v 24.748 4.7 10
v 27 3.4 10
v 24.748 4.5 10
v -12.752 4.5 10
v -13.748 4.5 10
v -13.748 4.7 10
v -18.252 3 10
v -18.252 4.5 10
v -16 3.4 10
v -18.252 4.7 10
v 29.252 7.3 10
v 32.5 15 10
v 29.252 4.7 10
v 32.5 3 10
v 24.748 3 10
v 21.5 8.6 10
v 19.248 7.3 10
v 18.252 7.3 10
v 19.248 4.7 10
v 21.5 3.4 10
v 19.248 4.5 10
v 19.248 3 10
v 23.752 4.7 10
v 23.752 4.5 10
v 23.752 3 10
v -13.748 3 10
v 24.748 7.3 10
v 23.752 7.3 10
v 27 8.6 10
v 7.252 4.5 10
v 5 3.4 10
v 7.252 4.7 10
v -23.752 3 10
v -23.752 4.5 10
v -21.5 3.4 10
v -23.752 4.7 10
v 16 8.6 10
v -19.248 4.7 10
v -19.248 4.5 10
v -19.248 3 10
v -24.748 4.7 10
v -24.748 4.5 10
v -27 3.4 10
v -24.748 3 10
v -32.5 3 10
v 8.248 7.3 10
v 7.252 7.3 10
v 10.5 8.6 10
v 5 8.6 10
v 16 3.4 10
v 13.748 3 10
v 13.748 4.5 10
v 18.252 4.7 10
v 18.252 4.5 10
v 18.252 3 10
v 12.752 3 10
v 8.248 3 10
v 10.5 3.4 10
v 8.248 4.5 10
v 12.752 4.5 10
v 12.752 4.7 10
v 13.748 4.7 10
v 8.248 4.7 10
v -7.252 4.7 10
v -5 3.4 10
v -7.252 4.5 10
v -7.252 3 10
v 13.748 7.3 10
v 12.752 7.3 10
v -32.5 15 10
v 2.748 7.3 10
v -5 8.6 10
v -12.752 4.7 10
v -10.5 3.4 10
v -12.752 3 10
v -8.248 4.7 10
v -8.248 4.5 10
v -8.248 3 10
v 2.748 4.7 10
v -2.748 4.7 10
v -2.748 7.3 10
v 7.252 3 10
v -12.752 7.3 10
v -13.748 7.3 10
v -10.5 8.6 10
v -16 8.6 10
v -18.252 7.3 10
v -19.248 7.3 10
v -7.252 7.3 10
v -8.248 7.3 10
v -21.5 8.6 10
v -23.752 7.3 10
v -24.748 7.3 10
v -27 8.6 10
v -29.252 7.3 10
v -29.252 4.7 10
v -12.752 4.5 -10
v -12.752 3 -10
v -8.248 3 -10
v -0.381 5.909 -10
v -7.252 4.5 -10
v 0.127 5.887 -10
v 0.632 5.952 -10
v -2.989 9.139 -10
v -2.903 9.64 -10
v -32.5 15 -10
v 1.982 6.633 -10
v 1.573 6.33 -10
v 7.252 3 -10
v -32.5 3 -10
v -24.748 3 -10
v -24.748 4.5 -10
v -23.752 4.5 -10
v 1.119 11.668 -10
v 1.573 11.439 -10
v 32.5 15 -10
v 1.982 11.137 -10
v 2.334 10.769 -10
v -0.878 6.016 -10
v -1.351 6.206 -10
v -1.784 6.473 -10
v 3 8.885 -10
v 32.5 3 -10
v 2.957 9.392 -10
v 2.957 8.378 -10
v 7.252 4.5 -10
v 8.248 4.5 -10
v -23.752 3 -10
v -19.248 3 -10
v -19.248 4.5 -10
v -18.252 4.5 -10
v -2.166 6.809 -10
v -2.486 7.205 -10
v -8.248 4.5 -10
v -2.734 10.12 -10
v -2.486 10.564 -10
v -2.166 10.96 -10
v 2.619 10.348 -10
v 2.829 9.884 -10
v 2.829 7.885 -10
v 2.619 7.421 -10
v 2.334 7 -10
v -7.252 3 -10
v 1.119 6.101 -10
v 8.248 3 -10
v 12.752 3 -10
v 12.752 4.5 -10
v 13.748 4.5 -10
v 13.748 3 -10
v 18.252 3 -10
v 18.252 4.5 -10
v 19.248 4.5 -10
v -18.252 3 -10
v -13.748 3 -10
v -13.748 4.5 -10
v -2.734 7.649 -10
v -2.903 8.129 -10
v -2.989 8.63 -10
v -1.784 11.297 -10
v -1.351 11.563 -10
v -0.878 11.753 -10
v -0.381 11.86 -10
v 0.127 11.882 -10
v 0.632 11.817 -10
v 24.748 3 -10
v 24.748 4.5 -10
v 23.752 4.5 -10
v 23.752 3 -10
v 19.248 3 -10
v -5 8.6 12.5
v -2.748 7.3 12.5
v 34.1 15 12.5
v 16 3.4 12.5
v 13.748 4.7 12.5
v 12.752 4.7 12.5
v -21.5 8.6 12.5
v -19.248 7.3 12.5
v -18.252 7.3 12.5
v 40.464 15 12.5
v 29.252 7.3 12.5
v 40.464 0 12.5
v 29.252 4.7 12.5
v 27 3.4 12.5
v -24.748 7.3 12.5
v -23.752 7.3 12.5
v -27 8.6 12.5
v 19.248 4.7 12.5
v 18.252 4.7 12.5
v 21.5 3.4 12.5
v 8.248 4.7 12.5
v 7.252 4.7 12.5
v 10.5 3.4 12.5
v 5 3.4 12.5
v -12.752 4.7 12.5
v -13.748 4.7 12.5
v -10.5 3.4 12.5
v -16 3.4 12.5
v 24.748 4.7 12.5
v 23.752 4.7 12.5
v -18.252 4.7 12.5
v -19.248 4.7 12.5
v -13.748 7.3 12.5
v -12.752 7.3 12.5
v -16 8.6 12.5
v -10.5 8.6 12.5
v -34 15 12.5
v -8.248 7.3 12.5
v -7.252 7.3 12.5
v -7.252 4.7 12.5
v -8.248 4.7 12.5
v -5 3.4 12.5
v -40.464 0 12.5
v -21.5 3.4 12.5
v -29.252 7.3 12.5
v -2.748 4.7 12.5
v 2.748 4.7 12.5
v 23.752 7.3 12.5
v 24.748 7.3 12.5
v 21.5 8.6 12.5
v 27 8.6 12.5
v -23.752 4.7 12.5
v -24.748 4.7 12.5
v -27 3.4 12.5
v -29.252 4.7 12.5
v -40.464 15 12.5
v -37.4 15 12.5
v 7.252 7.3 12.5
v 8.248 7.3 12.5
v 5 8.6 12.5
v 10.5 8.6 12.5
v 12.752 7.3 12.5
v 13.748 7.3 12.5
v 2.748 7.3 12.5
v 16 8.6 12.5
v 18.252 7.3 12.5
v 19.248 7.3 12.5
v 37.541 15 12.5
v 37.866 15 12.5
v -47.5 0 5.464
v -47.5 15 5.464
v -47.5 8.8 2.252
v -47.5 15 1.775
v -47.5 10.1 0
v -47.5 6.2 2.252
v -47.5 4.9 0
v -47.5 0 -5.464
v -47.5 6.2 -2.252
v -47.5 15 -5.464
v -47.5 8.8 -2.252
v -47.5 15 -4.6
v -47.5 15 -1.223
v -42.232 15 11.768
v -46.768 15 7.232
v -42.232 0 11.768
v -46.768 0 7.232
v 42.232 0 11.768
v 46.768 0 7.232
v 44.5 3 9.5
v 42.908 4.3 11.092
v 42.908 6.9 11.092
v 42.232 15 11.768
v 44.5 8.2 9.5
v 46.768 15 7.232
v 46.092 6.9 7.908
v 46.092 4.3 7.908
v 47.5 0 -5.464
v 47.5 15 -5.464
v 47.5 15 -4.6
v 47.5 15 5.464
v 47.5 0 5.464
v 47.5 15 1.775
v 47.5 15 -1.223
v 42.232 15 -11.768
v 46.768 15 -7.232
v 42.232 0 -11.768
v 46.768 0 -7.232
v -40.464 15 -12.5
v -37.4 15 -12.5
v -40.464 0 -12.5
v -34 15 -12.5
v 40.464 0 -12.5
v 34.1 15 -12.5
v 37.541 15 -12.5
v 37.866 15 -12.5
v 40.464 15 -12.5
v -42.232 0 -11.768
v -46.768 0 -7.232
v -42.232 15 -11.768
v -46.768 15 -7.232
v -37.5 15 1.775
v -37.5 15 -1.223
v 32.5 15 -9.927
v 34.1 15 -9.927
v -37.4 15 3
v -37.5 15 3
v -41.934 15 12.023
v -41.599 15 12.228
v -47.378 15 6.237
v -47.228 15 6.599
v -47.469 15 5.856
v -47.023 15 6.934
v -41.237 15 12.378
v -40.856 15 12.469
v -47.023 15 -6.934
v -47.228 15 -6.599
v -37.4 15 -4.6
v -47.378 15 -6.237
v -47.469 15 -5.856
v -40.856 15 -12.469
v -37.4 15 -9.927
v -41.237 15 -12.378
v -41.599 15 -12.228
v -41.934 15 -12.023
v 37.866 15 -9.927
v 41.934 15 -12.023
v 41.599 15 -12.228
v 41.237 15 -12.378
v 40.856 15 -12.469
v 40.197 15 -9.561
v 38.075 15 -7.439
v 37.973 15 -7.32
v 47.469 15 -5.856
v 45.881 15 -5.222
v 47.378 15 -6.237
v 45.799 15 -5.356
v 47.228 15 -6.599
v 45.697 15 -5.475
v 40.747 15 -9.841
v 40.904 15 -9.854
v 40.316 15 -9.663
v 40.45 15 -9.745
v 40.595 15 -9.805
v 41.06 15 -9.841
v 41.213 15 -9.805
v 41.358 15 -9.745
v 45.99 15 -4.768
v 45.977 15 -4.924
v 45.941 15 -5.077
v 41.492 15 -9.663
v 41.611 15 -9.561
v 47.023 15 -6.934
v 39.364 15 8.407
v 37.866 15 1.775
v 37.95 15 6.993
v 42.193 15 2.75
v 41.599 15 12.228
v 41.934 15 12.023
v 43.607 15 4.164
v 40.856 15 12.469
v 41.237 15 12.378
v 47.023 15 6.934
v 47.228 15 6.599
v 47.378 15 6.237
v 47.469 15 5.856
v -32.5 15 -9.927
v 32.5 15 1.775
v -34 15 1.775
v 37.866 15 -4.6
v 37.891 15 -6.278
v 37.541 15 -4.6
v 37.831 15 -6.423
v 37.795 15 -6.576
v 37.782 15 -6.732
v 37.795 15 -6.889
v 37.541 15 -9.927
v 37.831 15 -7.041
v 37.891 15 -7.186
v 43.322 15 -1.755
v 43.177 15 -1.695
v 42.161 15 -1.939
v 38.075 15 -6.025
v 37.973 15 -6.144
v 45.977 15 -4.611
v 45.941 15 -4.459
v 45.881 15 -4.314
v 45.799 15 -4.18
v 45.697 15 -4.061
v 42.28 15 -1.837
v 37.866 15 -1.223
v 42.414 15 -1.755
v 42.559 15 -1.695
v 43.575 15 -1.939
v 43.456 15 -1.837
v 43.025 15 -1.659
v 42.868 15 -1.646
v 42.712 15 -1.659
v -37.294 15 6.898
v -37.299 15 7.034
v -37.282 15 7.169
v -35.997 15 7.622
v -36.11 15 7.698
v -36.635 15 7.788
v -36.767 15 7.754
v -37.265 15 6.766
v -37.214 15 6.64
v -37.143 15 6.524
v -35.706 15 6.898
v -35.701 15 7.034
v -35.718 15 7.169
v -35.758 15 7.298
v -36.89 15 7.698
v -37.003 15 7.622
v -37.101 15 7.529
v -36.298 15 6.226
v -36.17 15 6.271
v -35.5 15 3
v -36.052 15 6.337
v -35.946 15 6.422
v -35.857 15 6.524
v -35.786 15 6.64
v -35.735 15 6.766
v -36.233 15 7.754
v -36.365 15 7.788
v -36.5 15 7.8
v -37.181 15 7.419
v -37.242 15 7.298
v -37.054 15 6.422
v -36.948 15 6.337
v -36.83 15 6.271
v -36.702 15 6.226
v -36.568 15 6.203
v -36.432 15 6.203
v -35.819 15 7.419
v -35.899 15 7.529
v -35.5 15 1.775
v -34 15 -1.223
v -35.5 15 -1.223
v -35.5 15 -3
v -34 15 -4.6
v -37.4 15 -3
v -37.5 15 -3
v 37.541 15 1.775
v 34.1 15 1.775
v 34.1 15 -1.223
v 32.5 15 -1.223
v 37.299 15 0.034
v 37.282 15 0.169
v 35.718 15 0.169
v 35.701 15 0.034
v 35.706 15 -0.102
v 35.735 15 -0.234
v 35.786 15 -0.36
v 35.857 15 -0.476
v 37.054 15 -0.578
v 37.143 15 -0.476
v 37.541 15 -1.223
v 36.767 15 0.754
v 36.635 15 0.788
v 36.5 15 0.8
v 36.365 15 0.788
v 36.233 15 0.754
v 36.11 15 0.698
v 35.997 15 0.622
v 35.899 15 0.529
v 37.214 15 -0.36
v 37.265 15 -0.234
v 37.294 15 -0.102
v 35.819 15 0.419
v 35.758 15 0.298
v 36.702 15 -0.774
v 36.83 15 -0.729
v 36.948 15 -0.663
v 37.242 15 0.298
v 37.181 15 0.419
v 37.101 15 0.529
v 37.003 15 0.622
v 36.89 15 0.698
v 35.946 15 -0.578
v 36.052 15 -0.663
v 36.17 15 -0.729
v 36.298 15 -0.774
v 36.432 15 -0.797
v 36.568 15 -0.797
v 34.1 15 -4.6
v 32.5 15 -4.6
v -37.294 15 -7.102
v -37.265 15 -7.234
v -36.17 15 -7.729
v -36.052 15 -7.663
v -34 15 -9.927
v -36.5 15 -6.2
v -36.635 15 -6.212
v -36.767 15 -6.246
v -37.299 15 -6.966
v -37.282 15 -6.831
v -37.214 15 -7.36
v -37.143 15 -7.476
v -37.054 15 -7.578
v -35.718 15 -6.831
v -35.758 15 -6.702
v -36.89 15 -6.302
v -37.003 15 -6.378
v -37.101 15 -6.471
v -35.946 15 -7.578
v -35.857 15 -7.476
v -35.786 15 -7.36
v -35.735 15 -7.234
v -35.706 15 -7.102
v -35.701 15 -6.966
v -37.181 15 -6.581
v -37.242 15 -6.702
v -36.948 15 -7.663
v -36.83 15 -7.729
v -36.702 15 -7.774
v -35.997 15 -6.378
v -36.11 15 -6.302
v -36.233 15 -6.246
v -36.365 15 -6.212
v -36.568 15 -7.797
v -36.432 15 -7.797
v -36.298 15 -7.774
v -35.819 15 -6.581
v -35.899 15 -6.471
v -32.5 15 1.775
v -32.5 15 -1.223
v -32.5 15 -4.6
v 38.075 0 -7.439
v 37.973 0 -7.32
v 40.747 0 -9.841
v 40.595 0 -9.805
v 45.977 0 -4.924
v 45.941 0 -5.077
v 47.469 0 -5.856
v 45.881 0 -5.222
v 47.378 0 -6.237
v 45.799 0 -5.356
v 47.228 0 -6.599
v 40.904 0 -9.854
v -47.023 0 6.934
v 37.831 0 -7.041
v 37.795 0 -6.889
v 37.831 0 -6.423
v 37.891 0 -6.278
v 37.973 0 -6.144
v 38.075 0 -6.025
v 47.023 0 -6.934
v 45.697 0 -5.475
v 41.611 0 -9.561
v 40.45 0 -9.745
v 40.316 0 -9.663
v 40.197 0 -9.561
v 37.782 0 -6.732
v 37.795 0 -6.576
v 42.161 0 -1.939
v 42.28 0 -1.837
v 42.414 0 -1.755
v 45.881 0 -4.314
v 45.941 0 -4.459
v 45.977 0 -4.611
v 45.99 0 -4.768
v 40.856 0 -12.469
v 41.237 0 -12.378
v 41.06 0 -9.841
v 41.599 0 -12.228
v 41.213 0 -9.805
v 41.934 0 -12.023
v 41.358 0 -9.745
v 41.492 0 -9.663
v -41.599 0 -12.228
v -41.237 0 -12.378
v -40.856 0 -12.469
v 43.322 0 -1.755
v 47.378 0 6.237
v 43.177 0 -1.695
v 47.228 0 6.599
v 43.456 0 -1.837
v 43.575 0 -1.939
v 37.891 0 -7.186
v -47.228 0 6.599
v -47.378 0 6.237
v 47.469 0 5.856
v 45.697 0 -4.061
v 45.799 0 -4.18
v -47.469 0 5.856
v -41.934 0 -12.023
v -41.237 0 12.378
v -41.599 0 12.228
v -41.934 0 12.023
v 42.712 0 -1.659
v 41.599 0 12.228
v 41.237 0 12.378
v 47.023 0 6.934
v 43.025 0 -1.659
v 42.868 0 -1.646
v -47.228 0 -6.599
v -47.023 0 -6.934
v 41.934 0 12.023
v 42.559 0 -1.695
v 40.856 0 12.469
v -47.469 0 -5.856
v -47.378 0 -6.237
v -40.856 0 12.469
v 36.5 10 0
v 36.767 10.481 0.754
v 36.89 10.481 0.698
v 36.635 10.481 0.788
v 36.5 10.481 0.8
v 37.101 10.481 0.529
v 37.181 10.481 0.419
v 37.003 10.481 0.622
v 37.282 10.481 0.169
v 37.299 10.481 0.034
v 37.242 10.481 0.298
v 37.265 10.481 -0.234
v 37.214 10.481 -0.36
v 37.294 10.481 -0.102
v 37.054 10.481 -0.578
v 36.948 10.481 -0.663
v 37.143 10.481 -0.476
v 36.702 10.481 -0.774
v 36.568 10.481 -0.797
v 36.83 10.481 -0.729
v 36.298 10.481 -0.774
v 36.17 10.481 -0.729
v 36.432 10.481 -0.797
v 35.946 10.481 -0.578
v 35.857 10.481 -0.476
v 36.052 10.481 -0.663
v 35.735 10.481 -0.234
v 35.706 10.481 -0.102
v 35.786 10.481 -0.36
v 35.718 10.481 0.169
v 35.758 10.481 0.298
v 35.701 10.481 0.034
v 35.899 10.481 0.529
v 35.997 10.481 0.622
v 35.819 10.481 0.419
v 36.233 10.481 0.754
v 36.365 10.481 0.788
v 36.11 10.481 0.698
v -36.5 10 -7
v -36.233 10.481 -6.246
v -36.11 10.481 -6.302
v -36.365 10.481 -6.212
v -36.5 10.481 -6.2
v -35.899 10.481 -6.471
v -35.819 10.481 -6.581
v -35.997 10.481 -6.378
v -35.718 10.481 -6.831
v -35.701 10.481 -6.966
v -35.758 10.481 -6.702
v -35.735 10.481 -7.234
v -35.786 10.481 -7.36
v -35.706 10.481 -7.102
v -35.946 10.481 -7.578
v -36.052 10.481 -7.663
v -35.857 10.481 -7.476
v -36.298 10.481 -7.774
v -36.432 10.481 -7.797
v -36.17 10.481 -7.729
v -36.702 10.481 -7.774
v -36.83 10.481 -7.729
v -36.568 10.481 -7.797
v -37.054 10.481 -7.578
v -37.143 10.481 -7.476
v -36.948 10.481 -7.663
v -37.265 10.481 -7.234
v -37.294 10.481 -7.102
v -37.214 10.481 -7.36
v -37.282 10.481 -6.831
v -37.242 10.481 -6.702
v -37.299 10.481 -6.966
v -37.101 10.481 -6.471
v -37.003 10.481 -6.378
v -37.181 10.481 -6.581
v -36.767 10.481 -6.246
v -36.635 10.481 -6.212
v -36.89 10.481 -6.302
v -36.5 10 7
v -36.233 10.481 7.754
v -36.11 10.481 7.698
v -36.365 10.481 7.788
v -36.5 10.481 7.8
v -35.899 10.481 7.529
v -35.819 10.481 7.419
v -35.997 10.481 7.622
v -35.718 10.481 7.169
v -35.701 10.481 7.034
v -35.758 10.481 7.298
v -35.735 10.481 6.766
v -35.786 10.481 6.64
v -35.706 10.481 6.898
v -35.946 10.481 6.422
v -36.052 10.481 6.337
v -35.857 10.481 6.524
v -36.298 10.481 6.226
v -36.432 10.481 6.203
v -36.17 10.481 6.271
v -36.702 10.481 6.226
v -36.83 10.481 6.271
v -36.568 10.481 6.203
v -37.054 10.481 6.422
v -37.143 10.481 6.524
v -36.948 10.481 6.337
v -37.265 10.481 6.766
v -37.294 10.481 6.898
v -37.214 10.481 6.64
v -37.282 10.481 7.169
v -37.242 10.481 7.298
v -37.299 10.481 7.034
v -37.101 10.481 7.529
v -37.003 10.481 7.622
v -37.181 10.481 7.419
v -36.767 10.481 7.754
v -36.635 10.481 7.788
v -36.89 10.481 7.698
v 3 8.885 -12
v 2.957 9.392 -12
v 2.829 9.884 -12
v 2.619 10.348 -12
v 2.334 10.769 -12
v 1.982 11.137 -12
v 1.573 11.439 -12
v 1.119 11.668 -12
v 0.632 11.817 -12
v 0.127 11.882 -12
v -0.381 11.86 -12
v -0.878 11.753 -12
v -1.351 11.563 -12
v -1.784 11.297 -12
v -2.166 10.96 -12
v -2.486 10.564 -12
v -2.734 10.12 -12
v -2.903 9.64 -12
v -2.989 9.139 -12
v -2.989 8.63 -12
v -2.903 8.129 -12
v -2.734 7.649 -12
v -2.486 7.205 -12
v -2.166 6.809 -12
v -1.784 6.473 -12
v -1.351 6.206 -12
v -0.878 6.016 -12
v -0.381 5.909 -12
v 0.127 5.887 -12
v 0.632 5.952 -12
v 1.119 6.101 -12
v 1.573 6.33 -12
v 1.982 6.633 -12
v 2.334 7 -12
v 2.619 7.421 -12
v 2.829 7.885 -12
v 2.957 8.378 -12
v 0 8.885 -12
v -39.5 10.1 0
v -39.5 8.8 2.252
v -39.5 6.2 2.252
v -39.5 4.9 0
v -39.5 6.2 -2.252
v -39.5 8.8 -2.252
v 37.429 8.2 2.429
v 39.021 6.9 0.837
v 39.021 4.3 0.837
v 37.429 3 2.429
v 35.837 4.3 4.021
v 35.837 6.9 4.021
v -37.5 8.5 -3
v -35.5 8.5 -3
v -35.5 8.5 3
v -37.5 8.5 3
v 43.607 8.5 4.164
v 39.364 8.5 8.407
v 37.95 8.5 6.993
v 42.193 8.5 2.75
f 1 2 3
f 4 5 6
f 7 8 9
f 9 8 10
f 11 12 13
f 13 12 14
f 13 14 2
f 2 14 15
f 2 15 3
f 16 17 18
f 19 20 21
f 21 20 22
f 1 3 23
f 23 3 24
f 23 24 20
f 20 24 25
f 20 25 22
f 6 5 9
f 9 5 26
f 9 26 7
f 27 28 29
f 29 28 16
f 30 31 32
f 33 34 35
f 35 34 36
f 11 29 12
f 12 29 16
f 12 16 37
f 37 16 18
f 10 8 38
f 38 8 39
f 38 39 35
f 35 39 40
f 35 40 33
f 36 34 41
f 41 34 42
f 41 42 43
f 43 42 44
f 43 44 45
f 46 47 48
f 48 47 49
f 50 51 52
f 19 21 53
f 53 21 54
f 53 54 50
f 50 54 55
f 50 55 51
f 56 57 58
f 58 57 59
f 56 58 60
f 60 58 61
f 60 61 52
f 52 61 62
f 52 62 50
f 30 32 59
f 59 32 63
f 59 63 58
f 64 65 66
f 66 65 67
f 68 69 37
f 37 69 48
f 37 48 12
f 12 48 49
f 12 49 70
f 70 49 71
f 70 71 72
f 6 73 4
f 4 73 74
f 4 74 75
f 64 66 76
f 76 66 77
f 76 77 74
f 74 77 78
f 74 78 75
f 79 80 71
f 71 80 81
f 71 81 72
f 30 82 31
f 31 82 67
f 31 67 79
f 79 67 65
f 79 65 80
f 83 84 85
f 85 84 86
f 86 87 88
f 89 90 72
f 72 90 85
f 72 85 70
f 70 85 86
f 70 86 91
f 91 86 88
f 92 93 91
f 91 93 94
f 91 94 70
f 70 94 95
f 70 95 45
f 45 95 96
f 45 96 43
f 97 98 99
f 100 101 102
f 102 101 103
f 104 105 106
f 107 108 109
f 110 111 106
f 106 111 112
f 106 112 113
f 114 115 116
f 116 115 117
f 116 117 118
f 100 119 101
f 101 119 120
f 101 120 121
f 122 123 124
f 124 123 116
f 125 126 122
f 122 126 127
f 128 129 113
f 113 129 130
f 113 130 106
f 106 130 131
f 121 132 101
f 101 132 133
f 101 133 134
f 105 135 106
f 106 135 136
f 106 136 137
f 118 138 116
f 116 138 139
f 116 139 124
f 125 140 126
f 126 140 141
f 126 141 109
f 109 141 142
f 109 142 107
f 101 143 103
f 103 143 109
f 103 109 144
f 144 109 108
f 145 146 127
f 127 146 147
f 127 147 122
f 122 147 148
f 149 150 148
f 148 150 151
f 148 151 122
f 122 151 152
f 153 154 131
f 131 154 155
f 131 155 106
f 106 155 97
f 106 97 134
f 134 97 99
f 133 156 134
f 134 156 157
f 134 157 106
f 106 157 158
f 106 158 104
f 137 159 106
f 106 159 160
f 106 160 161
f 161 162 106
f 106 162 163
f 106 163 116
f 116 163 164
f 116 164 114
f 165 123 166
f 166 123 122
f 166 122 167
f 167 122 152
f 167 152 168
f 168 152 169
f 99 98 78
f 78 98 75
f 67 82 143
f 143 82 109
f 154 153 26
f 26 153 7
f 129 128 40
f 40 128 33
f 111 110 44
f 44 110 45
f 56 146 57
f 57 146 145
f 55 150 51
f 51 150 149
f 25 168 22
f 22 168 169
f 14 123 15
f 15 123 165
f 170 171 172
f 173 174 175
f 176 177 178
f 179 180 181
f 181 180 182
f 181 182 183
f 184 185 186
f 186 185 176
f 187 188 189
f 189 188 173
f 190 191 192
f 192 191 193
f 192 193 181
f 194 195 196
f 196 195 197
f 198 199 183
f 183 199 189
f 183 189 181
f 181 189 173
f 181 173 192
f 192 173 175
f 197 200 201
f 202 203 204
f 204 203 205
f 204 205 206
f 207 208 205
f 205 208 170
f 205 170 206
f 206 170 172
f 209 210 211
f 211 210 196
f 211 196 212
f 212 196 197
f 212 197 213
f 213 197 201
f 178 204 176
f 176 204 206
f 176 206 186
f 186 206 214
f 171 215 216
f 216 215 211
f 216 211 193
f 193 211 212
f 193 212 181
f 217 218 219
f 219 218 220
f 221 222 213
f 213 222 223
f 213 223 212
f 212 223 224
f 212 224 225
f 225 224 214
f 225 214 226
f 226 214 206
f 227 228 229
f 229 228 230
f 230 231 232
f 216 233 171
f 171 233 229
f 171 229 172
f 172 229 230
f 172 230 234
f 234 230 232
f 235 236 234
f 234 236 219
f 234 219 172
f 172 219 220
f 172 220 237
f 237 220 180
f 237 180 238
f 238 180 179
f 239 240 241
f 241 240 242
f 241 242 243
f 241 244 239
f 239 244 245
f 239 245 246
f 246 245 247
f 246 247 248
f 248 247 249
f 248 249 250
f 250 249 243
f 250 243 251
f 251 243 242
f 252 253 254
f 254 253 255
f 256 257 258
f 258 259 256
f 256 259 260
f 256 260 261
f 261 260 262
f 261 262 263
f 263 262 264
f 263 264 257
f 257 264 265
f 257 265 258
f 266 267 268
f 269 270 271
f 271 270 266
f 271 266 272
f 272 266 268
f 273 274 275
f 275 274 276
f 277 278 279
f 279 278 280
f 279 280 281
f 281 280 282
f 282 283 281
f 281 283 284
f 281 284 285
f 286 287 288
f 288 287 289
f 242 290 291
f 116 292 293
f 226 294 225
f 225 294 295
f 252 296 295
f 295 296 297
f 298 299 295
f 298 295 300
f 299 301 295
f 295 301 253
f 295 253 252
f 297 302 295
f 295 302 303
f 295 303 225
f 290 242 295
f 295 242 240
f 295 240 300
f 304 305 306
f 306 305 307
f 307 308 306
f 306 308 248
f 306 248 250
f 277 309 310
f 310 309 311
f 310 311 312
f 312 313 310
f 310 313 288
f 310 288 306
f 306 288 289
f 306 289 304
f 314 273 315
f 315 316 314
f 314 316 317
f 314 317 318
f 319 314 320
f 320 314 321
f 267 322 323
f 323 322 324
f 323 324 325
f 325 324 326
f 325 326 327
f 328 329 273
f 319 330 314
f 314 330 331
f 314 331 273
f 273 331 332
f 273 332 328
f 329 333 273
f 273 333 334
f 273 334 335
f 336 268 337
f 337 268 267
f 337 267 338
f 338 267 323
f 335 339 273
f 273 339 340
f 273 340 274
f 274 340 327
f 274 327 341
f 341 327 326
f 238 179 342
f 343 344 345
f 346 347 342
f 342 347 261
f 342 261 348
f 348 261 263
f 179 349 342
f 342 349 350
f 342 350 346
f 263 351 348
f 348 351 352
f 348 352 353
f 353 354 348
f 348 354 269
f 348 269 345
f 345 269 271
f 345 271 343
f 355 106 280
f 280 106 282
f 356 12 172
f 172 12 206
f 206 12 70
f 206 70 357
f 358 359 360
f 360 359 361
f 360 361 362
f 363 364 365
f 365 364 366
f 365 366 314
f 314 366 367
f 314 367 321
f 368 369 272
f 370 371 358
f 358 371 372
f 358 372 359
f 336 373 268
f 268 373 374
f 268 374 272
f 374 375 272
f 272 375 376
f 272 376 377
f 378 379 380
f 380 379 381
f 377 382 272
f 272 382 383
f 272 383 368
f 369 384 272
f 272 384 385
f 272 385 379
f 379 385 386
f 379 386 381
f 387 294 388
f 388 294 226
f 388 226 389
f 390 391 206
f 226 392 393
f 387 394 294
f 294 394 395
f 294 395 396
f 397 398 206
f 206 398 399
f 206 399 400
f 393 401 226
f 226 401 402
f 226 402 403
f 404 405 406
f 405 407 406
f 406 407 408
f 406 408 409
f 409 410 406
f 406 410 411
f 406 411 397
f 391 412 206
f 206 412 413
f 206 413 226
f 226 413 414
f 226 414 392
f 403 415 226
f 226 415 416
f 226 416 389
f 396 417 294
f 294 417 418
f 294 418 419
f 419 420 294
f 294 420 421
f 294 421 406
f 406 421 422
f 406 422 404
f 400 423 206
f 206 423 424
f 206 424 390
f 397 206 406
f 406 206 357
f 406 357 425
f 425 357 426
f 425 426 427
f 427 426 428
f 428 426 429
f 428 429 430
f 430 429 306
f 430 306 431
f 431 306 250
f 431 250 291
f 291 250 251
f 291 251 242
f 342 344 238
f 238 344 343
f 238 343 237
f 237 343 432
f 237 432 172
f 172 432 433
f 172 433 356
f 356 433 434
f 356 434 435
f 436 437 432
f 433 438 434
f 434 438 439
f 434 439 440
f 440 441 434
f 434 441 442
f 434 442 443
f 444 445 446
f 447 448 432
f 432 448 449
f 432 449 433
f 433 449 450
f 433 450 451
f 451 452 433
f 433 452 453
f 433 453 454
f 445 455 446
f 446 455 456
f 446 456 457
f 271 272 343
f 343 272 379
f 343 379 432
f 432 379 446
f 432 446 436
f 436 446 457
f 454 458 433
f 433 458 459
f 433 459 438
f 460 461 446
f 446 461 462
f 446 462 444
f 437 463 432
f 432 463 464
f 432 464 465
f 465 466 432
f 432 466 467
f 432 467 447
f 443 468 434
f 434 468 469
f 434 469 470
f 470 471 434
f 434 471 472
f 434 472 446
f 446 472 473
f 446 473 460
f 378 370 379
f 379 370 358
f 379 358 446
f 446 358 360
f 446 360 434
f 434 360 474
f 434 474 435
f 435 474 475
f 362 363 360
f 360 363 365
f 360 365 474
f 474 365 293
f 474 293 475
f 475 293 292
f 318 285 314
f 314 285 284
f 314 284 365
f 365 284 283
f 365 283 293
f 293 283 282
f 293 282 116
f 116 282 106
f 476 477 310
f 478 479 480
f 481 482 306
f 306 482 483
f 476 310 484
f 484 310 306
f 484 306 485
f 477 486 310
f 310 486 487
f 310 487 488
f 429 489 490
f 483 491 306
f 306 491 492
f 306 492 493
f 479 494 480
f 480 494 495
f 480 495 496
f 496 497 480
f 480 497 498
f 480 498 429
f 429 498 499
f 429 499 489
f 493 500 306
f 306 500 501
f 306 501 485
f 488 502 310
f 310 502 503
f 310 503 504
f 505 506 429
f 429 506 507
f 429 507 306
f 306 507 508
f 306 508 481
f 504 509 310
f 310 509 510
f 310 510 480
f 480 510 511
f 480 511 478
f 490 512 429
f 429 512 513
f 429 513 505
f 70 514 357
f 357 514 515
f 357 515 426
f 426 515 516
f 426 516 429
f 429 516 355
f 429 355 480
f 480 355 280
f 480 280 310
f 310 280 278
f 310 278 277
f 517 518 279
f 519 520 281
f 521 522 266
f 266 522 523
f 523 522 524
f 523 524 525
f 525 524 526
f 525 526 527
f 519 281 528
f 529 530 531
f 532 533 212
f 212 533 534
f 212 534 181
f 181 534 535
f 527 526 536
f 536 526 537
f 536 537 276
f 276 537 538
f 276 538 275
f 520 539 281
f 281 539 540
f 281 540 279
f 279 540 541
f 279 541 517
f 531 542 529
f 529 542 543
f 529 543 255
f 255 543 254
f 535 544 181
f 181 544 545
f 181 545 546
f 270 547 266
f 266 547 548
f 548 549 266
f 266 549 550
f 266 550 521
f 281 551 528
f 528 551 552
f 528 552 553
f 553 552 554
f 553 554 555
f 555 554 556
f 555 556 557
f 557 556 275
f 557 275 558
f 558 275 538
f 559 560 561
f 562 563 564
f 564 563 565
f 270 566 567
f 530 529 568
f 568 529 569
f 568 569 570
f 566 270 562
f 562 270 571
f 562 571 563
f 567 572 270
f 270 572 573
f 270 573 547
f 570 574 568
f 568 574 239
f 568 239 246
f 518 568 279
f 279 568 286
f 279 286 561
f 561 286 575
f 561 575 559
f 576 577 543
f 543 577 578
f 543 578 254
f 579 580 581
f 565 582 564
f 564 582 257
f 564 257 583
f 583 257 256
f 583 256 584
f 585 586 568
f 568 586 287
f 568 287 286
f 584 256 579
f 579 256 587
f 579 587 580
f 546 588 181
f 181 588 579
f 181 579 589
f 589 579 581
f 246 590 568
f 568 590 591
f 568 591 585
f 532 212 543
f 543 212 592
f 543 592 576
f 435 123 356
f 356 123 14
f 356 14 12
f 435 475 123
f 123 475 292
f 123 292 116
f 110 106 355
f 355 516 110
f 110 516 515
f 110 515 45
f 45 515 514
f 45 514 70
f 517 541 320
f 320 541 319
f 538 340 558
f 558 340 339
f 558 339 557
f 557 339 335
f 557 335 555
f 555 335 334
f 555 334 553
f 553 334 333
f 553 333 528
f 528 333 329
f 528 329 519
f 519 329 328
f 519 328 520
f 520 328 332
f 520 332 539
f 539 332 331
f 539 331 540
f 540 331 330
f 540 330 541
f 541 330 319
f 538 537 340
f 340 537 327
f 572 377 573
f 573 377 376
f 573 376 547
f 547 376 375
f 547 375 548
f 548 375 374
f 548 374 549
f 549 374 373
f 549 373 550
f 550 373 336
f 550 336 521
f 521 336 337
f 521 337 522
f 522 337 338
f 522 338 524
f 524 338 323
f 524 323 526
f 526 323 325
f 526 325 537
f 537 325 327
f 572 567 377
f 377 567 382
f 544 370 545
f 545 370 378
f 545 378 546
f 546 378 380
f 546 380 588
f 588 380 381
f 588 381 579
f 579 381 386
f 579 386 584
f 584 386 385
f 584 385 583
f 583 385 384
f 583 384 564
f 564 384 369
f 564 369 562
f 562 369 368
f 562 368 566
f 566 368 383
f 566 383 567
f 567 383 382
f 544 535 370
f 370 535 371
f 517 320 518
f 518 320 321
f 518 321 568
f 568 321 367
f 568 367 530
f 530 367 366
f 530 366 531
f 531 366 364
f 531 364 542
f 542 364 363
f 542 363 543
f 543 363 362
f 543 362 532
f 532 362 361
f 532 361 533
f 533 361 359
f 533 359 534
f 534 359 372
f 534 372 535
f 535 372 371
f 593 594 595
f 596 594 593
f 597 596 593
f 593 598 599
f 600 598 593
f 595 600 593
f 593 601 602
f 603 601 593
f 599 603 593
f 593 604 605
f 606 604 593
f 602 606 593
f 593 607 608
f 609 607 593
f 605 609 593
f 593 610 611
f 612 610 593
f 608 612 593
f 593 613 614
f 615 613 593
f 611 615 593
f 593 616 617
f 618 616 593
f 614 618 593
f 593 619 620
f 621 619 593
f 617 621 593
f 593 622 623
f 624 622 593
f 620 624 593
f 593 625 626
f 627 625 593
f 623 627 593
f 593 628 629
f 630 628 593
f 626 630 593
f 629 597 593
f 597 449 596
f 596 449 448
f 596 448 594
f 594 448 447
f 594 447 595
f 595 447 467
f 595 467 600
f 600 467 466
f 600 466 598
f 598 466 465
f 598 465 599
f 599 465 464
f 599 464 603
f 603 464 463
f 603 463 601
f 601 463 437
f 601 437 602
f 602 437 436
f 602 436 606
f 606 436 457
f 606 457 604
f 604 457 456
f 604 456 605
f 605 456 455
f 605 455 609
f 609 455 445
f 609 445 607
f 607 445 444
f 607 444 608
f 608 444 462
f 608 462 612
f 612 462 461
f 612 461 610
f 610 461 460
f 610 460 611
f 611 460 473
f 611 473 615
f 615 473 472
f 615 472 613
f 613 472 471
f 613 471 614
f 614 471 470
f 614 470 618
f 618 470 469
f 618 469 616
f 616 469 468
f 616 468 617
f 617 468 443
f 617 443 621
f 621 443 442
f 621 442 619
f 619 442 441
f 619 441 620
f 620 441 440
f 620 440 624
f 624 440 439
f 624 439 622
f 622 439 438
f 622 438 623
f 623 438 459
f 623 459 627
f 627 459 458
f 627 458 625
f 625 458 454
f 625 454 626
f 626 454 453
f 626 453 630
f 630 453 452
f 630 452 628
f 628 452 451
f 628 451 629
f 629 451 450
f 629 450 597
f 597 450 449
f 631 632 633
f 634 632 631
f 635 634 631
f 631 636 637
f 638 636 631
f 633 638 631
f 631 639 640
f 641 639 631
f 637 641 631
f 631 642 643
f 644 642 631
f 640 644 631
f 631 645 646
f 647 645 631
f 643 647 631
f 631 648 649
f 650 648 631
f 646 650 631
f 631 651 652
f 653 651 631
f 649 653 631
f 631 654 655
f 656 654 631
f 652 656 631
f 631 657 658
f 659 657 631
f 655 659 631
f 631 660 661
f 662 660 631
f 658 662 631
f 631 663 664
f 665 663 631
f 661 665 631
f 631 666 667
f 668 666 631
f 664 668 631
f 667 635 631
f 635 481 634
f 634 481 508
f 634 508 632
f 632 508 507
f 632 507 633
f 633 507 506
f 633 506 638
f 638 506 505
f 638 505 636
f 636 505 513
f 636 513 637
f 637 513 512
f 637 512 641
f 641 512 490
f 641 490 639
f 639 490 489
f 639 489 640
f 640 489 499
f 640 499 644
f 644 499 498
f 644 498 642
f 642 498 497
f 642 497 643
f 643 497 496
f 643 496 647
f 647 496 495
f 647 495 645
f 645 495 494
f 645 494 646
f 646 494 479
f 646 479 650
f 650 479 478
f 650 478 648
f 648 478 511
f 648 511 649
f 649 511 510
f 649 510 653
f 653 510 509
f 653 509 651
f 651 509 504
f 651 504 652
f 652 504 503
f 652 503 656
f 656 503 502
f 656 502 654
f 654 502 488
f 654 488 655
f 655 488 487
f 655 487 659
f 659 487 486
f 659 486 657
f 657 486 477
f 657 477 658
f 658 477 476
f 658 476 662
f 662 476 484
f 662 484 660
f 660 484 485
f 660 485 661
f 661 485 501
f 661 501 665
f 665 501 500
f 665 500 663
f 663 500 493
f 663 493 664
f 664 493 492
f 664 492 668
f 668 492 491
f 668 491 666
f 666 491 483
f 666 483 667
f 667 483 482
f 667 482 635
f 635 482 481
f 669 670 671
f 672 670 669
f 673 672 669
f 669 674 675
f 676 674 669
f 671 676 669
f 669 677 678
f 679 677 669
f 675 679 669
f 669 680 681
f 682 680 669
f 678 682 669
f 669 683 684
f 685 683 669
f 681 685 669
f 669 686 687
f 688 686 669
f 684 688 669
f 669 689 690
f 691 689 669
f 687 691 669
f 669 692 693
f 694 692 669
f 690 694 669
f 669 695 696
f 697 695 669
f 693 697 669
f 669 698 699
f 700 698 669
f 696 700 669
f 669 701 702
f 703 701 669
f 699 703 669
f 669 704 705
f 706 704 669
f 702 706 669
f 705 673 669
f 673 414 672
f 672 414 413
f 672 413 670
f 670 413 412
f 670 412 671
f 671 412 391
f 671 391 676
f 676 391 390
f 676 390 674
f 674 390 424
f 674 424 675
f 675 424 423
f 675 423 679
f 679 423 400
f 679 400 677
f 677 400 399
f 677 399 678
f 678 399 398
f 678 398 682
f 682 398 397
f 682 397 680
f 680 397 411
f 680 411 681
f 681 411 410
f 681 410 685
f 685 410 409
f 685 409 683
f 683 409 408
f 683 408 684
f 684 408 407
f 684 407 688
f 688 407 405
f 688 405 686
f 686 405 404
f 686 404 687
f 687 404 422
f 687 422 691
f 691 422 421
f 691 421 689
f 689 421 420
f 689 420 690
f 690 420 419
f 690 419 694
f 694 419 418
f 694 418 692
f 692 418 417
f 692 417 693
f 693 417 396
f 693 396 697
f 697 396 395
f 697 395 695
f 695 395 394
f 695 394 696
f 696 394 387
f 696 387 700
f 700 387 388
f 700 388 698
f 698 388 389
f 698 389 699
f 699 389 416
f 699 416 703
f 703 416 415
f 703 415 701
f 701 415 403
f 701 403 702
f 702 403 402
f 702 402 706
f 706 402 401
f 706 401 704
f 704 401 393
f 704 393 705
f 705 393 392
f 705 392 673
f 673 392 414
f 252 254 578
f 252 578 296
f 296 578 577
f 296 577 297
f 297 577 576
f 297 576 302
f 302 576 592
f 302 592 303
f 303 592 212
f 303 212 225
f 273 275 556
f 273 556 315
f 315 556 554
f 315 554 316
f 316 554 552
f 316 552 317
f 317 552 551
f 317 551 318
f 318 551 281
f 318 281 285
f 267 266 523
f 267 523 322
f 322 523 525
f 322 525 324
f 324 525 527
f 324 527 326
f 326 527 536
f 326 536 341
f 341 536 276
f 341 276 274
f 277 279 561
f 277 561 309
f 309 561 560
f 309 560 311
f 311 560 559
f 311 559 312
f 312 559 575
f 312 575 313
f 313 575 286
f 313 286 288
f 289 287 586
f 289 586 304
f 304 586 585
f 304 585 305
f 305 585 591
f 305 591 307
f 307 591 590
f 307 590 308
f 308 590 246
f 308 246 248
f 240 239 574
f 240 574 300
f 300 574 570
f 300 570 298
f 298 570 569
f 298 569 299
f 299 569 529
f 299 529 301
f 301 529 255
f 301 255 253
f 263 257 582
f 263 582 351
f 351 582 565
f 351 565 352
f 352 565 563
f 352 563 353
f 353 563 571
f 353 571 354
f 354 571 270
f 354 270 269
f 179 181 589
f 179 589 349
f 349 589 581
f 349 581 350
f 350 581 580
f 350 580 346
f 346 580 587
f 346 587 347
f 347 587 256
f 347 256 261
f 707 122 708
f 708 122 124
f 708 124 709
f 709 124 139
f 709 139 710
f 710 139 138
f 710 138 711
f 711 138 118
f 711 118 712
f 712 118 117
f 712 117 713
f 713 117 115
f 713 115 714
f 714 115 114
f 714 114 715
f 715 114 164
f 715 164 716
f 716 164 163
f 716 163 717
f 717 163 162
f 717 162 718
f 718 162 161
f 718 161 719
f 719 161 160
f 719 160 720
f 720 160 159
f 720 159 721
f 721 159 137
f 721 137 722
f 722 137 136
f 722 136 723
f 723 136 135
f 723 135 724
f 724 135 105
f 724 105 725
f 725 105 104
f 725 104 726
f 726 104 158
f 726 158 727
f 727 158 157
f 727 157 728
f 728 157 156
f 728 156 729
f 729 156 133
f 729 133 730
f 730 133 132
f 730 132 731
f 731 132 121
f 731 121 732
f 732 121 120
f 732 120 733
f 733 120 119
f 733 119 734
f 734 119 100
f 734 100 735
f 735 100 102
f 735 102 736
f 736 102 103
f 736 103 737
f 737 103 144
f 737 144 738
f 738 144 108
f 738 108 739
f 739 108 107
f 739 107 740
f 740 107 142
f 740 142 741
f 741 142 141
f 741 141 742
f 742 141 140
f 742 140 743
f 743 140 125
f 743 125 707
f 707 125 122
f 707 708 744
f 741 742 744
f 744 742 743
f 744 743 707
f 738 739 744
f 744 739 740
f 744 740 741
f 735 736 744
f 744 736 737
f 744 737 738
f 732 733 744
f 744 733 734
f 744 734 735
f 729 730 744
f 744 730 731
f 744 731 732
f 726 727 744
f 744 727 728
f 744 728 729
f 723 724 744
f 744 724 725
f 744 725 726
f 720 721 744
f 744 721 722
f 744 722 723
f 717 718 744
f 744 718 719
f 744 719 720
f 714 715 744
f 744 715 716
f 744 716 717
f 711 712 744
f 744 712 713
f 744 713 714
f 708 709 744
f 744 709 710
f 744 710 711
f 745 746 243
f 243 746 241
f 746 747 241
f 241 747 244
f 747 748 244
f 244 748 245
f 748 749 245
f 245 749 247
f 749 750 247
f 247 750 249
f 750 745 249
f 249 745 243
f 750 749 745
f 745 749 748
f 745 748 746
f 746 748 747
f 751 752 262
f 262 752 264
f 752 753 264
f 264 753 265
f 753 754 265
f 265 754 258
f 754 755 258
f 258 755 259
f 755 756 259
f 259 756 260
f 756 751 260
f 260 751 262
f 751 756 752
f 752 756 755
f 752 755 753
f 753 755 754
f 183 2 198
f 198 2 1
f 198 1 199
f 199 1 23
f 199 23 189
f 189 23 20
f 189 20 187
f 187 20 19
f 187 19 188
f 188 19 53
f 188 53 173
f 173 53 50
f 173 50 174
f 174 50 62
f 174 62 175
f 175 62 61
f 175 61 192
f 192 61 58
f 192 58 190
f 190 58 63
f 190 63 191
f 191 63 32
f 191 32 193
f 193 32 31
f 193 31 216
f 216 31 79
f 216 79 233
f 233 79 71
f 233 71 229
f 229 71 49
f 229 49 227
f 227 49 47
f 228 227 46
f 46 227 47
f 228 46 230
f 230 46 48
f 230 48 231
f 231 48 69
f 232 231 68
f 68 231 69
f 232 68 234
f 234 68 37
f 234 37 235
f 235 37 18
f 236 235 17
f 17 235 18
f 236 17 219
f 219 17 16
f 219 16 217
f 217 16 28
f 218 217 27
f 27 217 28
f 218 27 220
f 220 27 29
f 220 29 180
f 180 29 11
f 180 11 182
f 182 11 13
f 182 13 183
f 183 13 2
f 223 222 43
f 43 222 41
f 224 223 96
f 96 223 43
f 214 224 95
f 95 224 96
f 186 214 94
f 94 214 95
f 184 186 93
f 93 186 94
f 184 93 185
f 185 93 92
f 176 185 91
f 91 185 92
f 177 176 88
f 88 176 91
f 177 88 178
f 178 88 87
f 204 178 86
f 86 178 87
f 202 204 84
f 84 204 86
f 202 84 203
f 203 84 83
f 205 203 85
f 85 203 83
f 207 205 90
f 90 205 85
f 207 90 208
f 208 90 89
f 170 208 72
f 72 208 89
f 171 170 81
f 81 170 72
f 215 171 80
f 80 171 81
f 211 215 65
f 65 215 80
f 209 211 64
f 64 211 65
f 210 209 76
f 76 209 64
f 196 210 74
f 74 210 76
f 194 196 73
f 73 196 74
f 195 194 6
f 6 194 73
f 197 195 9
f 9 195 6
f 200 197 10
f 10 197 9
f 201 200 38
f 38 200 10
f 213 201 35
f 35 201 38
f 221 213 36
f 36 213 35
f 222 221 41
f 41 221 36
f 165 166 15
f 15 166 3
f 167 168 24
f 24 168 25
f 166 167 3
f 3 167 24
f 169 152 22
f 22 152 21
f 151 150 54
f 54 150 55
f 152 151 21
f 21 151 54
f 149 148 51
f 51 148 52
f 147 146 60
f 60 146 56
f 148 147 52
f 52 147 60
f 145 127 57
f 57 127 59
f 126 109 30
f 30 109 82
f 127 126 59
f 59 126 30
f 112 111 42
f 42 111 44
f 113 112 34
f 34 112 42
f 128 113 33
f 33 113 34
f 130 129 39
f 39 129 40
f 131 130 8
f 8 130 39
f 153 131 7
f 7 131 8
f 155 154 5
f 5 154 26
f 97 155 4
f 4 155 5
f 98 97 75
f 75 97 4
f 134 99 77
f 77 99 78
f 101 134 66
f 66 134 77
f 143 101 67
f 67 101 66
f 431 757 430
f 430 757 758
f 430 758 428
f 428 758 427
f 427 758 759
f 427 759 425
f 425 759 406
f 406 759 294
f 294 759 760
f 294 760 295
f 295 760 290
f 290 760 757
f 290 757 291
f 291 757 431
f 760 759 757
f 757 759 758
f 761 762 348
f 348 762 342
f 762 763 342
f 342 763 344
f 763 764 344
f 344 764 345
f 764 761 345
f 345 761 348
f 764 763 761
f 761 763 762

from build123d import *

# Parameters (mm, degrees)
BOSS_EXTRUDE1_DEPTH     = 15
SKETCH3_W               = 65
SKETCH3_H               = 20
CUT_EXTRUDE2_DEPTH      = 12
CUT_EXTRUDE4_DEPTH      = 52.35659646
M2_TAPPED_HOLE1_D       = 1.6
M2_TAPPED_HOLE1_DEPTH   = 4.519311505
M2_TAPPED_HOLE1_TIP     = 0.480688495
FILLET4_R               = 2.5
SKETCH15_R              = 3
CUT_EXTRUDE10_DEPTH     = 2
CUT_EXTRUDE11_DEPTH     = 8
CUT_EXTRUDE12_DEPTH     = 10
CUT_EXTRUDE13_DEPTH     = 10
SKETCH19_W              = 0.9966679
SKETCH19_H              = 1.5
BOSS_EXTRUDE2_DEPTH     = 20
LPATTERN1_COUNT         = 4
LPATTERN1_PITCH         = 5.5
MIRROR2_COPY_1_SKETCH_W = 0.9966679
MIRROR2_COPY_1_SKETCH_H = 1.5
MIRROR2_COPY_1_DEPTH    = 20
MIRROR2_COPY_2_SKETCH_W = 0.9966679
MIRROR2_COPY_2_SKETCH_H = 1.5
MIRROR2_COPY_2_DEPTH    = 20
MIRROR2_COPY_3_SKETCH_W = 0.9966679
MIRROR2_COPY_3_SKETCH_H = 1.5
MIRROR2_COPY_3_DEPTH    = 20
SKETCH20_W              = 2
SKETCH20_H              = 6
CUT_EXTRUDE14_DEPTH     = 6.5


with BuildPart() as part:
    # Sketch1 → Boss-Extrude1 (new body)
    with BuildSketch(Plane(origin=(0, 0, 0), x_dir=(1, 0, 0), z_dir=(0, 1, 0))):
        Polygon((-47.5, -6.5), (-41.5, -12.5), (41.5, -12.5), (47.5, -6.5), (47.5, 6.5), (41.5, 12.5), (-41.5, 12.5), (-47.5, 6.5), align=None)
    extrude(amount=BOSS_EXTRUDE1_DEPTH)

    # Sketch3 → Cut-Extrude2 (cut)
    with BuildSketch(Plane(origin=(0, 15, 0), x_dir=(1, 0, 0), z_dir=(0, 1, 0))):
        Rectangle(SKETCH3_W, SKETCH3_H)
    extrude(amount=-CUT_EXTRUDE2_DEPTH, mode=Mode.SUBTRACT)

    # Sketch4 → Cut-Extrude4 (cut, through all)
    with BuildSketch(Plane(origin=(0, 15, 0), x_dir=(1, 0, 0), z_dir=(0, 1, 0))):
        with BuildLine():
            Line((41.610912703, 9.560660172), (45.696699141, 5.474873734))
            ThreePointArc((45.696699141, 5.474873734), (45.98959236, 4.767766953), (45.696699141, 4.060660172))
            Line((45.696699141, 4.060660172), (43.575378798, 1.939339828))
            ThreePointArc((43.575378798, 1.939339828), (42.868272016, 1.646446609), (42.161165235, 1.939339828))
            Line((42.161165235, 1.939339828), (38.075378798, 6.025126266))
            ThreePointArc((38.075378798, 6.025126266), (37.782485579, 6.732233047), (38.075378798, 7.439339828))
            Line((38.075378798, 7.439339828), (40.196699141, 9.560660172))
            ThreePointArc((40.196699141, 9.560660172), (40.903805922, 9.853553391), (41.610912703, 9.560660172))
        make_face()
    extrude(amount=-CUT_EXTRUDE4_DEPTH, mode=Mode.SUBTRACT)

    # M2 Tapped Hole1
    with Locations(Plane(origin=(-36.5, 15, 7), x_dir=(0, 0, 1), z_dir=(0, 1, 0))):
        with Locations((0, 0), (-14, 0), (-7, 73)):
            Hole(M2_TAPPED_HOLE1_D / 2, depth=M2_TAPPED_HOLE1_DEPTH)
            with Locations((0, 0, -(M2_TAPPED_HOLE1_DEPTH + M2_TAPPED_HOLE1_TIP / 2))):  # 118° drill point
                Cone(0, M2_TAPPED_HOLE1_D / 2, M2_TAPPED_HOLE1_TIP, mode=Mode.SUBTRACT)

    # Fillet4
    fillet4_edges = [part.edges().sort_by_distance(p)[0] for p in [
        (-47.5, 7.5, -6.5),
        (-41.5, 7.5, -12.5),
        (41.5, 7.5, -12.5),
        (47.5, 7.5, -6.5),
        (47.5, 7.5, 6.5),
        (41.5, 7.5, 12.5),
        (-41.5, 7.5, 12.5),
        (-47.5, 7.5, 6.5),
    ]]
    fillet(fillet4_edges, radius=FILLET4_R)

    # Sketch15 → Cut-Extrude10 (cut)
    with BuildSketch(Plane.XY.offset(-10)):
        with Locations((0, 8.884553107)):
            Circle(SKETCH15_R)
    extrude(amount=-CUT_EXTRUDE10_DEPTH, mode=Mode.SUBTRACT)

    # Sketch16 → Cut-Extrude11 (cut)
    with BuildSketch(Plane.ZY.offset(47.5)):
        Polygon((0, 10.1), (-2.25166605, 8.8), (-2.25166605, 6.2), (0, 4.9), (2.25166605, 6.2), (2.25166605, 8.8), align=None)
    extrude(amount=-CUT_EXTRUDE11_DEPTH, mode=Mode.SUBTRACT)

    # Sketch5 → Cut-Extrude12 (cut)
    with BuildSketch(Plane(origin=(27, 0, 27), x_dir=(0.7071067811865469, 0, -0.7071067811865481), z_dir=(0.7071067811865481, 0, 0.7071067811865469))):
        Polygon((24.748737342, 8.2), (22.497071292, 6.9), (22.497071292, 4.3), (24.748737342, 3), (27.000403391, 4.3), (27.000403391, 6.9), align=None)
    extrude(amount=-CUT_EXTRUDE12_DEPTH, mode=Mode.SUBTRACT)

    # Sketch17 → Cut-Extrude13 (cut)
    with BuildSketch(Plane.XY.offset(12.5)):
        Polygon((8.24833395, 7.3), (7.25166605, 7.3), (5, 8.6), (2.74833395, 7.3), (2.74833395, 4.7), (5, 3.4), (7.25166605, 4.7), (8.24833395, 4.7), (10.5, 3.4), (12.75166605, 4.7), (13.74833395, 4.7), (16, 3.4), (18.25166605, 4.7), (19.24833395, 4.7), (21.5, 3.4), (23.75166605, 4.7), (24.74833395, 4.7), (27, 3.4), (29.25166605, 4.7), (29.25166605, 7.3), (27, 8.6), (24.74833395, 7.3), (23.75166605, 7.3), (21.5, 8.6), (19.24833395, 7.3), (18.25166605, 7.3), (16, 8.6), (13.74833395, 7.3), (12.75166605, 7.3), (10.5, 8.6), align=None)
    cut_extrude13 = extrude(amount=-CUT_EXTRUDE13_DEPTH, mode=Mode.SUBTRACT)

    # Mirror1: Cut-Extrude13 across plane
    add(cut_extrude13.mirror(Plane(origin=(0, 0, 0), x_dir=(0, 0, 1), z_dir=(1, 0, 0))), mode=Mode.SUBTRACT)

    # Sketch19 → Boss-Extrude2 (add)
    with BuildSketch(Plane(origin=(0, 0, 10), x_dir=(-1, 0, 0), z_dir=(0, 0, -1))):
        with Locations((-24.25, 3.75)):
            Rectangle(SKETCH19_W, SKETCH19_H)
    boss_extrude2 = extrude(amount=BOSS_EXTRUDE2_DEPTH)

    # LPattern1: Boss-Extrude2 ×4
    with Locations(*[(-i * LPATTERN1_PITCH, 0, 0) for i in range(1, LPATTERN1_COUNT)]):
        add(boss_extrude2)

    # Mirror2: Boss-Extrude2 across plane
    add(boss_extrude2.mirror(Plane(origin=(0, 0, 0), x_dir=(0, 0, 1), z_dir=(1, 0, 0))))

    # Mirror2 copy 1 sketch → Mirror2 copy 1 (add)
    with BuildSketch(Plane(origin=(5.5, 0, 10), x_dir=(1, 0, 0), z_dir=(0, 0, -1))):
        with Locations((-24.25, -3.75)):
            Rectangle(MIRROR2_COPY_1_SKETCH_W, MIRROR2_COPY_1_SKETCH_H)
    extrude(amount=MIRROR2_COPY_1_DEPTH)

    # Mirror2 copy 2 sketch → Mirror2 copy 2 (add)
    with BuildSketch(Plane(origin=(11, 0, 10), x_dir=(1, 0, 0), z_dir=(0, 0, -1))):
        with Locations((-24.25, -3.75)):
            Rectangle(MIRROR2_COPY_2_SKETCH_W, MIRROR2_COPY_2_SKETCH_H)
    extrude(amount=MIRROR2_COPY_2_DEPTH)

    # Mirror2 copy 3 sketch → Mirror2 copy 3 (add)
    with BuildSketch(Plane(origin=(16.5, 0, 10), x_dir=(1, 0, 0), z_dir=(0, 0, -1))):
        with Locations((-24.25, -3.75)):
            Rectangle(MIRROR2_COPY_3_SKETCH_W, MIRROR2_COPY_3_SKETCH_H)
    extrude(amount=MIRROR2_COPY_3_DEPTH)

    # Sketch20 → Cut-Extrude14 (cut)
    with BuildSketch(Plane(origin=(0, 15, 0), x_dir=(1, 0, 0), z_dir=(0, 1, 0))):
        Polygon((39.364466094, -8.407106781), (37.950252532, -6.992893219), (42.192893219, -2.750252532), (43.607106781, -4.164466094), align=None)
        with Locations((-36.5, 0)):
            Rectangle(SKETCH20_W, SKETCH20_H)
    extrude(amount=-CUT_EXTRUDE14_DEPTH, mode=Mode.SUBTRACT)


solid = part.part
